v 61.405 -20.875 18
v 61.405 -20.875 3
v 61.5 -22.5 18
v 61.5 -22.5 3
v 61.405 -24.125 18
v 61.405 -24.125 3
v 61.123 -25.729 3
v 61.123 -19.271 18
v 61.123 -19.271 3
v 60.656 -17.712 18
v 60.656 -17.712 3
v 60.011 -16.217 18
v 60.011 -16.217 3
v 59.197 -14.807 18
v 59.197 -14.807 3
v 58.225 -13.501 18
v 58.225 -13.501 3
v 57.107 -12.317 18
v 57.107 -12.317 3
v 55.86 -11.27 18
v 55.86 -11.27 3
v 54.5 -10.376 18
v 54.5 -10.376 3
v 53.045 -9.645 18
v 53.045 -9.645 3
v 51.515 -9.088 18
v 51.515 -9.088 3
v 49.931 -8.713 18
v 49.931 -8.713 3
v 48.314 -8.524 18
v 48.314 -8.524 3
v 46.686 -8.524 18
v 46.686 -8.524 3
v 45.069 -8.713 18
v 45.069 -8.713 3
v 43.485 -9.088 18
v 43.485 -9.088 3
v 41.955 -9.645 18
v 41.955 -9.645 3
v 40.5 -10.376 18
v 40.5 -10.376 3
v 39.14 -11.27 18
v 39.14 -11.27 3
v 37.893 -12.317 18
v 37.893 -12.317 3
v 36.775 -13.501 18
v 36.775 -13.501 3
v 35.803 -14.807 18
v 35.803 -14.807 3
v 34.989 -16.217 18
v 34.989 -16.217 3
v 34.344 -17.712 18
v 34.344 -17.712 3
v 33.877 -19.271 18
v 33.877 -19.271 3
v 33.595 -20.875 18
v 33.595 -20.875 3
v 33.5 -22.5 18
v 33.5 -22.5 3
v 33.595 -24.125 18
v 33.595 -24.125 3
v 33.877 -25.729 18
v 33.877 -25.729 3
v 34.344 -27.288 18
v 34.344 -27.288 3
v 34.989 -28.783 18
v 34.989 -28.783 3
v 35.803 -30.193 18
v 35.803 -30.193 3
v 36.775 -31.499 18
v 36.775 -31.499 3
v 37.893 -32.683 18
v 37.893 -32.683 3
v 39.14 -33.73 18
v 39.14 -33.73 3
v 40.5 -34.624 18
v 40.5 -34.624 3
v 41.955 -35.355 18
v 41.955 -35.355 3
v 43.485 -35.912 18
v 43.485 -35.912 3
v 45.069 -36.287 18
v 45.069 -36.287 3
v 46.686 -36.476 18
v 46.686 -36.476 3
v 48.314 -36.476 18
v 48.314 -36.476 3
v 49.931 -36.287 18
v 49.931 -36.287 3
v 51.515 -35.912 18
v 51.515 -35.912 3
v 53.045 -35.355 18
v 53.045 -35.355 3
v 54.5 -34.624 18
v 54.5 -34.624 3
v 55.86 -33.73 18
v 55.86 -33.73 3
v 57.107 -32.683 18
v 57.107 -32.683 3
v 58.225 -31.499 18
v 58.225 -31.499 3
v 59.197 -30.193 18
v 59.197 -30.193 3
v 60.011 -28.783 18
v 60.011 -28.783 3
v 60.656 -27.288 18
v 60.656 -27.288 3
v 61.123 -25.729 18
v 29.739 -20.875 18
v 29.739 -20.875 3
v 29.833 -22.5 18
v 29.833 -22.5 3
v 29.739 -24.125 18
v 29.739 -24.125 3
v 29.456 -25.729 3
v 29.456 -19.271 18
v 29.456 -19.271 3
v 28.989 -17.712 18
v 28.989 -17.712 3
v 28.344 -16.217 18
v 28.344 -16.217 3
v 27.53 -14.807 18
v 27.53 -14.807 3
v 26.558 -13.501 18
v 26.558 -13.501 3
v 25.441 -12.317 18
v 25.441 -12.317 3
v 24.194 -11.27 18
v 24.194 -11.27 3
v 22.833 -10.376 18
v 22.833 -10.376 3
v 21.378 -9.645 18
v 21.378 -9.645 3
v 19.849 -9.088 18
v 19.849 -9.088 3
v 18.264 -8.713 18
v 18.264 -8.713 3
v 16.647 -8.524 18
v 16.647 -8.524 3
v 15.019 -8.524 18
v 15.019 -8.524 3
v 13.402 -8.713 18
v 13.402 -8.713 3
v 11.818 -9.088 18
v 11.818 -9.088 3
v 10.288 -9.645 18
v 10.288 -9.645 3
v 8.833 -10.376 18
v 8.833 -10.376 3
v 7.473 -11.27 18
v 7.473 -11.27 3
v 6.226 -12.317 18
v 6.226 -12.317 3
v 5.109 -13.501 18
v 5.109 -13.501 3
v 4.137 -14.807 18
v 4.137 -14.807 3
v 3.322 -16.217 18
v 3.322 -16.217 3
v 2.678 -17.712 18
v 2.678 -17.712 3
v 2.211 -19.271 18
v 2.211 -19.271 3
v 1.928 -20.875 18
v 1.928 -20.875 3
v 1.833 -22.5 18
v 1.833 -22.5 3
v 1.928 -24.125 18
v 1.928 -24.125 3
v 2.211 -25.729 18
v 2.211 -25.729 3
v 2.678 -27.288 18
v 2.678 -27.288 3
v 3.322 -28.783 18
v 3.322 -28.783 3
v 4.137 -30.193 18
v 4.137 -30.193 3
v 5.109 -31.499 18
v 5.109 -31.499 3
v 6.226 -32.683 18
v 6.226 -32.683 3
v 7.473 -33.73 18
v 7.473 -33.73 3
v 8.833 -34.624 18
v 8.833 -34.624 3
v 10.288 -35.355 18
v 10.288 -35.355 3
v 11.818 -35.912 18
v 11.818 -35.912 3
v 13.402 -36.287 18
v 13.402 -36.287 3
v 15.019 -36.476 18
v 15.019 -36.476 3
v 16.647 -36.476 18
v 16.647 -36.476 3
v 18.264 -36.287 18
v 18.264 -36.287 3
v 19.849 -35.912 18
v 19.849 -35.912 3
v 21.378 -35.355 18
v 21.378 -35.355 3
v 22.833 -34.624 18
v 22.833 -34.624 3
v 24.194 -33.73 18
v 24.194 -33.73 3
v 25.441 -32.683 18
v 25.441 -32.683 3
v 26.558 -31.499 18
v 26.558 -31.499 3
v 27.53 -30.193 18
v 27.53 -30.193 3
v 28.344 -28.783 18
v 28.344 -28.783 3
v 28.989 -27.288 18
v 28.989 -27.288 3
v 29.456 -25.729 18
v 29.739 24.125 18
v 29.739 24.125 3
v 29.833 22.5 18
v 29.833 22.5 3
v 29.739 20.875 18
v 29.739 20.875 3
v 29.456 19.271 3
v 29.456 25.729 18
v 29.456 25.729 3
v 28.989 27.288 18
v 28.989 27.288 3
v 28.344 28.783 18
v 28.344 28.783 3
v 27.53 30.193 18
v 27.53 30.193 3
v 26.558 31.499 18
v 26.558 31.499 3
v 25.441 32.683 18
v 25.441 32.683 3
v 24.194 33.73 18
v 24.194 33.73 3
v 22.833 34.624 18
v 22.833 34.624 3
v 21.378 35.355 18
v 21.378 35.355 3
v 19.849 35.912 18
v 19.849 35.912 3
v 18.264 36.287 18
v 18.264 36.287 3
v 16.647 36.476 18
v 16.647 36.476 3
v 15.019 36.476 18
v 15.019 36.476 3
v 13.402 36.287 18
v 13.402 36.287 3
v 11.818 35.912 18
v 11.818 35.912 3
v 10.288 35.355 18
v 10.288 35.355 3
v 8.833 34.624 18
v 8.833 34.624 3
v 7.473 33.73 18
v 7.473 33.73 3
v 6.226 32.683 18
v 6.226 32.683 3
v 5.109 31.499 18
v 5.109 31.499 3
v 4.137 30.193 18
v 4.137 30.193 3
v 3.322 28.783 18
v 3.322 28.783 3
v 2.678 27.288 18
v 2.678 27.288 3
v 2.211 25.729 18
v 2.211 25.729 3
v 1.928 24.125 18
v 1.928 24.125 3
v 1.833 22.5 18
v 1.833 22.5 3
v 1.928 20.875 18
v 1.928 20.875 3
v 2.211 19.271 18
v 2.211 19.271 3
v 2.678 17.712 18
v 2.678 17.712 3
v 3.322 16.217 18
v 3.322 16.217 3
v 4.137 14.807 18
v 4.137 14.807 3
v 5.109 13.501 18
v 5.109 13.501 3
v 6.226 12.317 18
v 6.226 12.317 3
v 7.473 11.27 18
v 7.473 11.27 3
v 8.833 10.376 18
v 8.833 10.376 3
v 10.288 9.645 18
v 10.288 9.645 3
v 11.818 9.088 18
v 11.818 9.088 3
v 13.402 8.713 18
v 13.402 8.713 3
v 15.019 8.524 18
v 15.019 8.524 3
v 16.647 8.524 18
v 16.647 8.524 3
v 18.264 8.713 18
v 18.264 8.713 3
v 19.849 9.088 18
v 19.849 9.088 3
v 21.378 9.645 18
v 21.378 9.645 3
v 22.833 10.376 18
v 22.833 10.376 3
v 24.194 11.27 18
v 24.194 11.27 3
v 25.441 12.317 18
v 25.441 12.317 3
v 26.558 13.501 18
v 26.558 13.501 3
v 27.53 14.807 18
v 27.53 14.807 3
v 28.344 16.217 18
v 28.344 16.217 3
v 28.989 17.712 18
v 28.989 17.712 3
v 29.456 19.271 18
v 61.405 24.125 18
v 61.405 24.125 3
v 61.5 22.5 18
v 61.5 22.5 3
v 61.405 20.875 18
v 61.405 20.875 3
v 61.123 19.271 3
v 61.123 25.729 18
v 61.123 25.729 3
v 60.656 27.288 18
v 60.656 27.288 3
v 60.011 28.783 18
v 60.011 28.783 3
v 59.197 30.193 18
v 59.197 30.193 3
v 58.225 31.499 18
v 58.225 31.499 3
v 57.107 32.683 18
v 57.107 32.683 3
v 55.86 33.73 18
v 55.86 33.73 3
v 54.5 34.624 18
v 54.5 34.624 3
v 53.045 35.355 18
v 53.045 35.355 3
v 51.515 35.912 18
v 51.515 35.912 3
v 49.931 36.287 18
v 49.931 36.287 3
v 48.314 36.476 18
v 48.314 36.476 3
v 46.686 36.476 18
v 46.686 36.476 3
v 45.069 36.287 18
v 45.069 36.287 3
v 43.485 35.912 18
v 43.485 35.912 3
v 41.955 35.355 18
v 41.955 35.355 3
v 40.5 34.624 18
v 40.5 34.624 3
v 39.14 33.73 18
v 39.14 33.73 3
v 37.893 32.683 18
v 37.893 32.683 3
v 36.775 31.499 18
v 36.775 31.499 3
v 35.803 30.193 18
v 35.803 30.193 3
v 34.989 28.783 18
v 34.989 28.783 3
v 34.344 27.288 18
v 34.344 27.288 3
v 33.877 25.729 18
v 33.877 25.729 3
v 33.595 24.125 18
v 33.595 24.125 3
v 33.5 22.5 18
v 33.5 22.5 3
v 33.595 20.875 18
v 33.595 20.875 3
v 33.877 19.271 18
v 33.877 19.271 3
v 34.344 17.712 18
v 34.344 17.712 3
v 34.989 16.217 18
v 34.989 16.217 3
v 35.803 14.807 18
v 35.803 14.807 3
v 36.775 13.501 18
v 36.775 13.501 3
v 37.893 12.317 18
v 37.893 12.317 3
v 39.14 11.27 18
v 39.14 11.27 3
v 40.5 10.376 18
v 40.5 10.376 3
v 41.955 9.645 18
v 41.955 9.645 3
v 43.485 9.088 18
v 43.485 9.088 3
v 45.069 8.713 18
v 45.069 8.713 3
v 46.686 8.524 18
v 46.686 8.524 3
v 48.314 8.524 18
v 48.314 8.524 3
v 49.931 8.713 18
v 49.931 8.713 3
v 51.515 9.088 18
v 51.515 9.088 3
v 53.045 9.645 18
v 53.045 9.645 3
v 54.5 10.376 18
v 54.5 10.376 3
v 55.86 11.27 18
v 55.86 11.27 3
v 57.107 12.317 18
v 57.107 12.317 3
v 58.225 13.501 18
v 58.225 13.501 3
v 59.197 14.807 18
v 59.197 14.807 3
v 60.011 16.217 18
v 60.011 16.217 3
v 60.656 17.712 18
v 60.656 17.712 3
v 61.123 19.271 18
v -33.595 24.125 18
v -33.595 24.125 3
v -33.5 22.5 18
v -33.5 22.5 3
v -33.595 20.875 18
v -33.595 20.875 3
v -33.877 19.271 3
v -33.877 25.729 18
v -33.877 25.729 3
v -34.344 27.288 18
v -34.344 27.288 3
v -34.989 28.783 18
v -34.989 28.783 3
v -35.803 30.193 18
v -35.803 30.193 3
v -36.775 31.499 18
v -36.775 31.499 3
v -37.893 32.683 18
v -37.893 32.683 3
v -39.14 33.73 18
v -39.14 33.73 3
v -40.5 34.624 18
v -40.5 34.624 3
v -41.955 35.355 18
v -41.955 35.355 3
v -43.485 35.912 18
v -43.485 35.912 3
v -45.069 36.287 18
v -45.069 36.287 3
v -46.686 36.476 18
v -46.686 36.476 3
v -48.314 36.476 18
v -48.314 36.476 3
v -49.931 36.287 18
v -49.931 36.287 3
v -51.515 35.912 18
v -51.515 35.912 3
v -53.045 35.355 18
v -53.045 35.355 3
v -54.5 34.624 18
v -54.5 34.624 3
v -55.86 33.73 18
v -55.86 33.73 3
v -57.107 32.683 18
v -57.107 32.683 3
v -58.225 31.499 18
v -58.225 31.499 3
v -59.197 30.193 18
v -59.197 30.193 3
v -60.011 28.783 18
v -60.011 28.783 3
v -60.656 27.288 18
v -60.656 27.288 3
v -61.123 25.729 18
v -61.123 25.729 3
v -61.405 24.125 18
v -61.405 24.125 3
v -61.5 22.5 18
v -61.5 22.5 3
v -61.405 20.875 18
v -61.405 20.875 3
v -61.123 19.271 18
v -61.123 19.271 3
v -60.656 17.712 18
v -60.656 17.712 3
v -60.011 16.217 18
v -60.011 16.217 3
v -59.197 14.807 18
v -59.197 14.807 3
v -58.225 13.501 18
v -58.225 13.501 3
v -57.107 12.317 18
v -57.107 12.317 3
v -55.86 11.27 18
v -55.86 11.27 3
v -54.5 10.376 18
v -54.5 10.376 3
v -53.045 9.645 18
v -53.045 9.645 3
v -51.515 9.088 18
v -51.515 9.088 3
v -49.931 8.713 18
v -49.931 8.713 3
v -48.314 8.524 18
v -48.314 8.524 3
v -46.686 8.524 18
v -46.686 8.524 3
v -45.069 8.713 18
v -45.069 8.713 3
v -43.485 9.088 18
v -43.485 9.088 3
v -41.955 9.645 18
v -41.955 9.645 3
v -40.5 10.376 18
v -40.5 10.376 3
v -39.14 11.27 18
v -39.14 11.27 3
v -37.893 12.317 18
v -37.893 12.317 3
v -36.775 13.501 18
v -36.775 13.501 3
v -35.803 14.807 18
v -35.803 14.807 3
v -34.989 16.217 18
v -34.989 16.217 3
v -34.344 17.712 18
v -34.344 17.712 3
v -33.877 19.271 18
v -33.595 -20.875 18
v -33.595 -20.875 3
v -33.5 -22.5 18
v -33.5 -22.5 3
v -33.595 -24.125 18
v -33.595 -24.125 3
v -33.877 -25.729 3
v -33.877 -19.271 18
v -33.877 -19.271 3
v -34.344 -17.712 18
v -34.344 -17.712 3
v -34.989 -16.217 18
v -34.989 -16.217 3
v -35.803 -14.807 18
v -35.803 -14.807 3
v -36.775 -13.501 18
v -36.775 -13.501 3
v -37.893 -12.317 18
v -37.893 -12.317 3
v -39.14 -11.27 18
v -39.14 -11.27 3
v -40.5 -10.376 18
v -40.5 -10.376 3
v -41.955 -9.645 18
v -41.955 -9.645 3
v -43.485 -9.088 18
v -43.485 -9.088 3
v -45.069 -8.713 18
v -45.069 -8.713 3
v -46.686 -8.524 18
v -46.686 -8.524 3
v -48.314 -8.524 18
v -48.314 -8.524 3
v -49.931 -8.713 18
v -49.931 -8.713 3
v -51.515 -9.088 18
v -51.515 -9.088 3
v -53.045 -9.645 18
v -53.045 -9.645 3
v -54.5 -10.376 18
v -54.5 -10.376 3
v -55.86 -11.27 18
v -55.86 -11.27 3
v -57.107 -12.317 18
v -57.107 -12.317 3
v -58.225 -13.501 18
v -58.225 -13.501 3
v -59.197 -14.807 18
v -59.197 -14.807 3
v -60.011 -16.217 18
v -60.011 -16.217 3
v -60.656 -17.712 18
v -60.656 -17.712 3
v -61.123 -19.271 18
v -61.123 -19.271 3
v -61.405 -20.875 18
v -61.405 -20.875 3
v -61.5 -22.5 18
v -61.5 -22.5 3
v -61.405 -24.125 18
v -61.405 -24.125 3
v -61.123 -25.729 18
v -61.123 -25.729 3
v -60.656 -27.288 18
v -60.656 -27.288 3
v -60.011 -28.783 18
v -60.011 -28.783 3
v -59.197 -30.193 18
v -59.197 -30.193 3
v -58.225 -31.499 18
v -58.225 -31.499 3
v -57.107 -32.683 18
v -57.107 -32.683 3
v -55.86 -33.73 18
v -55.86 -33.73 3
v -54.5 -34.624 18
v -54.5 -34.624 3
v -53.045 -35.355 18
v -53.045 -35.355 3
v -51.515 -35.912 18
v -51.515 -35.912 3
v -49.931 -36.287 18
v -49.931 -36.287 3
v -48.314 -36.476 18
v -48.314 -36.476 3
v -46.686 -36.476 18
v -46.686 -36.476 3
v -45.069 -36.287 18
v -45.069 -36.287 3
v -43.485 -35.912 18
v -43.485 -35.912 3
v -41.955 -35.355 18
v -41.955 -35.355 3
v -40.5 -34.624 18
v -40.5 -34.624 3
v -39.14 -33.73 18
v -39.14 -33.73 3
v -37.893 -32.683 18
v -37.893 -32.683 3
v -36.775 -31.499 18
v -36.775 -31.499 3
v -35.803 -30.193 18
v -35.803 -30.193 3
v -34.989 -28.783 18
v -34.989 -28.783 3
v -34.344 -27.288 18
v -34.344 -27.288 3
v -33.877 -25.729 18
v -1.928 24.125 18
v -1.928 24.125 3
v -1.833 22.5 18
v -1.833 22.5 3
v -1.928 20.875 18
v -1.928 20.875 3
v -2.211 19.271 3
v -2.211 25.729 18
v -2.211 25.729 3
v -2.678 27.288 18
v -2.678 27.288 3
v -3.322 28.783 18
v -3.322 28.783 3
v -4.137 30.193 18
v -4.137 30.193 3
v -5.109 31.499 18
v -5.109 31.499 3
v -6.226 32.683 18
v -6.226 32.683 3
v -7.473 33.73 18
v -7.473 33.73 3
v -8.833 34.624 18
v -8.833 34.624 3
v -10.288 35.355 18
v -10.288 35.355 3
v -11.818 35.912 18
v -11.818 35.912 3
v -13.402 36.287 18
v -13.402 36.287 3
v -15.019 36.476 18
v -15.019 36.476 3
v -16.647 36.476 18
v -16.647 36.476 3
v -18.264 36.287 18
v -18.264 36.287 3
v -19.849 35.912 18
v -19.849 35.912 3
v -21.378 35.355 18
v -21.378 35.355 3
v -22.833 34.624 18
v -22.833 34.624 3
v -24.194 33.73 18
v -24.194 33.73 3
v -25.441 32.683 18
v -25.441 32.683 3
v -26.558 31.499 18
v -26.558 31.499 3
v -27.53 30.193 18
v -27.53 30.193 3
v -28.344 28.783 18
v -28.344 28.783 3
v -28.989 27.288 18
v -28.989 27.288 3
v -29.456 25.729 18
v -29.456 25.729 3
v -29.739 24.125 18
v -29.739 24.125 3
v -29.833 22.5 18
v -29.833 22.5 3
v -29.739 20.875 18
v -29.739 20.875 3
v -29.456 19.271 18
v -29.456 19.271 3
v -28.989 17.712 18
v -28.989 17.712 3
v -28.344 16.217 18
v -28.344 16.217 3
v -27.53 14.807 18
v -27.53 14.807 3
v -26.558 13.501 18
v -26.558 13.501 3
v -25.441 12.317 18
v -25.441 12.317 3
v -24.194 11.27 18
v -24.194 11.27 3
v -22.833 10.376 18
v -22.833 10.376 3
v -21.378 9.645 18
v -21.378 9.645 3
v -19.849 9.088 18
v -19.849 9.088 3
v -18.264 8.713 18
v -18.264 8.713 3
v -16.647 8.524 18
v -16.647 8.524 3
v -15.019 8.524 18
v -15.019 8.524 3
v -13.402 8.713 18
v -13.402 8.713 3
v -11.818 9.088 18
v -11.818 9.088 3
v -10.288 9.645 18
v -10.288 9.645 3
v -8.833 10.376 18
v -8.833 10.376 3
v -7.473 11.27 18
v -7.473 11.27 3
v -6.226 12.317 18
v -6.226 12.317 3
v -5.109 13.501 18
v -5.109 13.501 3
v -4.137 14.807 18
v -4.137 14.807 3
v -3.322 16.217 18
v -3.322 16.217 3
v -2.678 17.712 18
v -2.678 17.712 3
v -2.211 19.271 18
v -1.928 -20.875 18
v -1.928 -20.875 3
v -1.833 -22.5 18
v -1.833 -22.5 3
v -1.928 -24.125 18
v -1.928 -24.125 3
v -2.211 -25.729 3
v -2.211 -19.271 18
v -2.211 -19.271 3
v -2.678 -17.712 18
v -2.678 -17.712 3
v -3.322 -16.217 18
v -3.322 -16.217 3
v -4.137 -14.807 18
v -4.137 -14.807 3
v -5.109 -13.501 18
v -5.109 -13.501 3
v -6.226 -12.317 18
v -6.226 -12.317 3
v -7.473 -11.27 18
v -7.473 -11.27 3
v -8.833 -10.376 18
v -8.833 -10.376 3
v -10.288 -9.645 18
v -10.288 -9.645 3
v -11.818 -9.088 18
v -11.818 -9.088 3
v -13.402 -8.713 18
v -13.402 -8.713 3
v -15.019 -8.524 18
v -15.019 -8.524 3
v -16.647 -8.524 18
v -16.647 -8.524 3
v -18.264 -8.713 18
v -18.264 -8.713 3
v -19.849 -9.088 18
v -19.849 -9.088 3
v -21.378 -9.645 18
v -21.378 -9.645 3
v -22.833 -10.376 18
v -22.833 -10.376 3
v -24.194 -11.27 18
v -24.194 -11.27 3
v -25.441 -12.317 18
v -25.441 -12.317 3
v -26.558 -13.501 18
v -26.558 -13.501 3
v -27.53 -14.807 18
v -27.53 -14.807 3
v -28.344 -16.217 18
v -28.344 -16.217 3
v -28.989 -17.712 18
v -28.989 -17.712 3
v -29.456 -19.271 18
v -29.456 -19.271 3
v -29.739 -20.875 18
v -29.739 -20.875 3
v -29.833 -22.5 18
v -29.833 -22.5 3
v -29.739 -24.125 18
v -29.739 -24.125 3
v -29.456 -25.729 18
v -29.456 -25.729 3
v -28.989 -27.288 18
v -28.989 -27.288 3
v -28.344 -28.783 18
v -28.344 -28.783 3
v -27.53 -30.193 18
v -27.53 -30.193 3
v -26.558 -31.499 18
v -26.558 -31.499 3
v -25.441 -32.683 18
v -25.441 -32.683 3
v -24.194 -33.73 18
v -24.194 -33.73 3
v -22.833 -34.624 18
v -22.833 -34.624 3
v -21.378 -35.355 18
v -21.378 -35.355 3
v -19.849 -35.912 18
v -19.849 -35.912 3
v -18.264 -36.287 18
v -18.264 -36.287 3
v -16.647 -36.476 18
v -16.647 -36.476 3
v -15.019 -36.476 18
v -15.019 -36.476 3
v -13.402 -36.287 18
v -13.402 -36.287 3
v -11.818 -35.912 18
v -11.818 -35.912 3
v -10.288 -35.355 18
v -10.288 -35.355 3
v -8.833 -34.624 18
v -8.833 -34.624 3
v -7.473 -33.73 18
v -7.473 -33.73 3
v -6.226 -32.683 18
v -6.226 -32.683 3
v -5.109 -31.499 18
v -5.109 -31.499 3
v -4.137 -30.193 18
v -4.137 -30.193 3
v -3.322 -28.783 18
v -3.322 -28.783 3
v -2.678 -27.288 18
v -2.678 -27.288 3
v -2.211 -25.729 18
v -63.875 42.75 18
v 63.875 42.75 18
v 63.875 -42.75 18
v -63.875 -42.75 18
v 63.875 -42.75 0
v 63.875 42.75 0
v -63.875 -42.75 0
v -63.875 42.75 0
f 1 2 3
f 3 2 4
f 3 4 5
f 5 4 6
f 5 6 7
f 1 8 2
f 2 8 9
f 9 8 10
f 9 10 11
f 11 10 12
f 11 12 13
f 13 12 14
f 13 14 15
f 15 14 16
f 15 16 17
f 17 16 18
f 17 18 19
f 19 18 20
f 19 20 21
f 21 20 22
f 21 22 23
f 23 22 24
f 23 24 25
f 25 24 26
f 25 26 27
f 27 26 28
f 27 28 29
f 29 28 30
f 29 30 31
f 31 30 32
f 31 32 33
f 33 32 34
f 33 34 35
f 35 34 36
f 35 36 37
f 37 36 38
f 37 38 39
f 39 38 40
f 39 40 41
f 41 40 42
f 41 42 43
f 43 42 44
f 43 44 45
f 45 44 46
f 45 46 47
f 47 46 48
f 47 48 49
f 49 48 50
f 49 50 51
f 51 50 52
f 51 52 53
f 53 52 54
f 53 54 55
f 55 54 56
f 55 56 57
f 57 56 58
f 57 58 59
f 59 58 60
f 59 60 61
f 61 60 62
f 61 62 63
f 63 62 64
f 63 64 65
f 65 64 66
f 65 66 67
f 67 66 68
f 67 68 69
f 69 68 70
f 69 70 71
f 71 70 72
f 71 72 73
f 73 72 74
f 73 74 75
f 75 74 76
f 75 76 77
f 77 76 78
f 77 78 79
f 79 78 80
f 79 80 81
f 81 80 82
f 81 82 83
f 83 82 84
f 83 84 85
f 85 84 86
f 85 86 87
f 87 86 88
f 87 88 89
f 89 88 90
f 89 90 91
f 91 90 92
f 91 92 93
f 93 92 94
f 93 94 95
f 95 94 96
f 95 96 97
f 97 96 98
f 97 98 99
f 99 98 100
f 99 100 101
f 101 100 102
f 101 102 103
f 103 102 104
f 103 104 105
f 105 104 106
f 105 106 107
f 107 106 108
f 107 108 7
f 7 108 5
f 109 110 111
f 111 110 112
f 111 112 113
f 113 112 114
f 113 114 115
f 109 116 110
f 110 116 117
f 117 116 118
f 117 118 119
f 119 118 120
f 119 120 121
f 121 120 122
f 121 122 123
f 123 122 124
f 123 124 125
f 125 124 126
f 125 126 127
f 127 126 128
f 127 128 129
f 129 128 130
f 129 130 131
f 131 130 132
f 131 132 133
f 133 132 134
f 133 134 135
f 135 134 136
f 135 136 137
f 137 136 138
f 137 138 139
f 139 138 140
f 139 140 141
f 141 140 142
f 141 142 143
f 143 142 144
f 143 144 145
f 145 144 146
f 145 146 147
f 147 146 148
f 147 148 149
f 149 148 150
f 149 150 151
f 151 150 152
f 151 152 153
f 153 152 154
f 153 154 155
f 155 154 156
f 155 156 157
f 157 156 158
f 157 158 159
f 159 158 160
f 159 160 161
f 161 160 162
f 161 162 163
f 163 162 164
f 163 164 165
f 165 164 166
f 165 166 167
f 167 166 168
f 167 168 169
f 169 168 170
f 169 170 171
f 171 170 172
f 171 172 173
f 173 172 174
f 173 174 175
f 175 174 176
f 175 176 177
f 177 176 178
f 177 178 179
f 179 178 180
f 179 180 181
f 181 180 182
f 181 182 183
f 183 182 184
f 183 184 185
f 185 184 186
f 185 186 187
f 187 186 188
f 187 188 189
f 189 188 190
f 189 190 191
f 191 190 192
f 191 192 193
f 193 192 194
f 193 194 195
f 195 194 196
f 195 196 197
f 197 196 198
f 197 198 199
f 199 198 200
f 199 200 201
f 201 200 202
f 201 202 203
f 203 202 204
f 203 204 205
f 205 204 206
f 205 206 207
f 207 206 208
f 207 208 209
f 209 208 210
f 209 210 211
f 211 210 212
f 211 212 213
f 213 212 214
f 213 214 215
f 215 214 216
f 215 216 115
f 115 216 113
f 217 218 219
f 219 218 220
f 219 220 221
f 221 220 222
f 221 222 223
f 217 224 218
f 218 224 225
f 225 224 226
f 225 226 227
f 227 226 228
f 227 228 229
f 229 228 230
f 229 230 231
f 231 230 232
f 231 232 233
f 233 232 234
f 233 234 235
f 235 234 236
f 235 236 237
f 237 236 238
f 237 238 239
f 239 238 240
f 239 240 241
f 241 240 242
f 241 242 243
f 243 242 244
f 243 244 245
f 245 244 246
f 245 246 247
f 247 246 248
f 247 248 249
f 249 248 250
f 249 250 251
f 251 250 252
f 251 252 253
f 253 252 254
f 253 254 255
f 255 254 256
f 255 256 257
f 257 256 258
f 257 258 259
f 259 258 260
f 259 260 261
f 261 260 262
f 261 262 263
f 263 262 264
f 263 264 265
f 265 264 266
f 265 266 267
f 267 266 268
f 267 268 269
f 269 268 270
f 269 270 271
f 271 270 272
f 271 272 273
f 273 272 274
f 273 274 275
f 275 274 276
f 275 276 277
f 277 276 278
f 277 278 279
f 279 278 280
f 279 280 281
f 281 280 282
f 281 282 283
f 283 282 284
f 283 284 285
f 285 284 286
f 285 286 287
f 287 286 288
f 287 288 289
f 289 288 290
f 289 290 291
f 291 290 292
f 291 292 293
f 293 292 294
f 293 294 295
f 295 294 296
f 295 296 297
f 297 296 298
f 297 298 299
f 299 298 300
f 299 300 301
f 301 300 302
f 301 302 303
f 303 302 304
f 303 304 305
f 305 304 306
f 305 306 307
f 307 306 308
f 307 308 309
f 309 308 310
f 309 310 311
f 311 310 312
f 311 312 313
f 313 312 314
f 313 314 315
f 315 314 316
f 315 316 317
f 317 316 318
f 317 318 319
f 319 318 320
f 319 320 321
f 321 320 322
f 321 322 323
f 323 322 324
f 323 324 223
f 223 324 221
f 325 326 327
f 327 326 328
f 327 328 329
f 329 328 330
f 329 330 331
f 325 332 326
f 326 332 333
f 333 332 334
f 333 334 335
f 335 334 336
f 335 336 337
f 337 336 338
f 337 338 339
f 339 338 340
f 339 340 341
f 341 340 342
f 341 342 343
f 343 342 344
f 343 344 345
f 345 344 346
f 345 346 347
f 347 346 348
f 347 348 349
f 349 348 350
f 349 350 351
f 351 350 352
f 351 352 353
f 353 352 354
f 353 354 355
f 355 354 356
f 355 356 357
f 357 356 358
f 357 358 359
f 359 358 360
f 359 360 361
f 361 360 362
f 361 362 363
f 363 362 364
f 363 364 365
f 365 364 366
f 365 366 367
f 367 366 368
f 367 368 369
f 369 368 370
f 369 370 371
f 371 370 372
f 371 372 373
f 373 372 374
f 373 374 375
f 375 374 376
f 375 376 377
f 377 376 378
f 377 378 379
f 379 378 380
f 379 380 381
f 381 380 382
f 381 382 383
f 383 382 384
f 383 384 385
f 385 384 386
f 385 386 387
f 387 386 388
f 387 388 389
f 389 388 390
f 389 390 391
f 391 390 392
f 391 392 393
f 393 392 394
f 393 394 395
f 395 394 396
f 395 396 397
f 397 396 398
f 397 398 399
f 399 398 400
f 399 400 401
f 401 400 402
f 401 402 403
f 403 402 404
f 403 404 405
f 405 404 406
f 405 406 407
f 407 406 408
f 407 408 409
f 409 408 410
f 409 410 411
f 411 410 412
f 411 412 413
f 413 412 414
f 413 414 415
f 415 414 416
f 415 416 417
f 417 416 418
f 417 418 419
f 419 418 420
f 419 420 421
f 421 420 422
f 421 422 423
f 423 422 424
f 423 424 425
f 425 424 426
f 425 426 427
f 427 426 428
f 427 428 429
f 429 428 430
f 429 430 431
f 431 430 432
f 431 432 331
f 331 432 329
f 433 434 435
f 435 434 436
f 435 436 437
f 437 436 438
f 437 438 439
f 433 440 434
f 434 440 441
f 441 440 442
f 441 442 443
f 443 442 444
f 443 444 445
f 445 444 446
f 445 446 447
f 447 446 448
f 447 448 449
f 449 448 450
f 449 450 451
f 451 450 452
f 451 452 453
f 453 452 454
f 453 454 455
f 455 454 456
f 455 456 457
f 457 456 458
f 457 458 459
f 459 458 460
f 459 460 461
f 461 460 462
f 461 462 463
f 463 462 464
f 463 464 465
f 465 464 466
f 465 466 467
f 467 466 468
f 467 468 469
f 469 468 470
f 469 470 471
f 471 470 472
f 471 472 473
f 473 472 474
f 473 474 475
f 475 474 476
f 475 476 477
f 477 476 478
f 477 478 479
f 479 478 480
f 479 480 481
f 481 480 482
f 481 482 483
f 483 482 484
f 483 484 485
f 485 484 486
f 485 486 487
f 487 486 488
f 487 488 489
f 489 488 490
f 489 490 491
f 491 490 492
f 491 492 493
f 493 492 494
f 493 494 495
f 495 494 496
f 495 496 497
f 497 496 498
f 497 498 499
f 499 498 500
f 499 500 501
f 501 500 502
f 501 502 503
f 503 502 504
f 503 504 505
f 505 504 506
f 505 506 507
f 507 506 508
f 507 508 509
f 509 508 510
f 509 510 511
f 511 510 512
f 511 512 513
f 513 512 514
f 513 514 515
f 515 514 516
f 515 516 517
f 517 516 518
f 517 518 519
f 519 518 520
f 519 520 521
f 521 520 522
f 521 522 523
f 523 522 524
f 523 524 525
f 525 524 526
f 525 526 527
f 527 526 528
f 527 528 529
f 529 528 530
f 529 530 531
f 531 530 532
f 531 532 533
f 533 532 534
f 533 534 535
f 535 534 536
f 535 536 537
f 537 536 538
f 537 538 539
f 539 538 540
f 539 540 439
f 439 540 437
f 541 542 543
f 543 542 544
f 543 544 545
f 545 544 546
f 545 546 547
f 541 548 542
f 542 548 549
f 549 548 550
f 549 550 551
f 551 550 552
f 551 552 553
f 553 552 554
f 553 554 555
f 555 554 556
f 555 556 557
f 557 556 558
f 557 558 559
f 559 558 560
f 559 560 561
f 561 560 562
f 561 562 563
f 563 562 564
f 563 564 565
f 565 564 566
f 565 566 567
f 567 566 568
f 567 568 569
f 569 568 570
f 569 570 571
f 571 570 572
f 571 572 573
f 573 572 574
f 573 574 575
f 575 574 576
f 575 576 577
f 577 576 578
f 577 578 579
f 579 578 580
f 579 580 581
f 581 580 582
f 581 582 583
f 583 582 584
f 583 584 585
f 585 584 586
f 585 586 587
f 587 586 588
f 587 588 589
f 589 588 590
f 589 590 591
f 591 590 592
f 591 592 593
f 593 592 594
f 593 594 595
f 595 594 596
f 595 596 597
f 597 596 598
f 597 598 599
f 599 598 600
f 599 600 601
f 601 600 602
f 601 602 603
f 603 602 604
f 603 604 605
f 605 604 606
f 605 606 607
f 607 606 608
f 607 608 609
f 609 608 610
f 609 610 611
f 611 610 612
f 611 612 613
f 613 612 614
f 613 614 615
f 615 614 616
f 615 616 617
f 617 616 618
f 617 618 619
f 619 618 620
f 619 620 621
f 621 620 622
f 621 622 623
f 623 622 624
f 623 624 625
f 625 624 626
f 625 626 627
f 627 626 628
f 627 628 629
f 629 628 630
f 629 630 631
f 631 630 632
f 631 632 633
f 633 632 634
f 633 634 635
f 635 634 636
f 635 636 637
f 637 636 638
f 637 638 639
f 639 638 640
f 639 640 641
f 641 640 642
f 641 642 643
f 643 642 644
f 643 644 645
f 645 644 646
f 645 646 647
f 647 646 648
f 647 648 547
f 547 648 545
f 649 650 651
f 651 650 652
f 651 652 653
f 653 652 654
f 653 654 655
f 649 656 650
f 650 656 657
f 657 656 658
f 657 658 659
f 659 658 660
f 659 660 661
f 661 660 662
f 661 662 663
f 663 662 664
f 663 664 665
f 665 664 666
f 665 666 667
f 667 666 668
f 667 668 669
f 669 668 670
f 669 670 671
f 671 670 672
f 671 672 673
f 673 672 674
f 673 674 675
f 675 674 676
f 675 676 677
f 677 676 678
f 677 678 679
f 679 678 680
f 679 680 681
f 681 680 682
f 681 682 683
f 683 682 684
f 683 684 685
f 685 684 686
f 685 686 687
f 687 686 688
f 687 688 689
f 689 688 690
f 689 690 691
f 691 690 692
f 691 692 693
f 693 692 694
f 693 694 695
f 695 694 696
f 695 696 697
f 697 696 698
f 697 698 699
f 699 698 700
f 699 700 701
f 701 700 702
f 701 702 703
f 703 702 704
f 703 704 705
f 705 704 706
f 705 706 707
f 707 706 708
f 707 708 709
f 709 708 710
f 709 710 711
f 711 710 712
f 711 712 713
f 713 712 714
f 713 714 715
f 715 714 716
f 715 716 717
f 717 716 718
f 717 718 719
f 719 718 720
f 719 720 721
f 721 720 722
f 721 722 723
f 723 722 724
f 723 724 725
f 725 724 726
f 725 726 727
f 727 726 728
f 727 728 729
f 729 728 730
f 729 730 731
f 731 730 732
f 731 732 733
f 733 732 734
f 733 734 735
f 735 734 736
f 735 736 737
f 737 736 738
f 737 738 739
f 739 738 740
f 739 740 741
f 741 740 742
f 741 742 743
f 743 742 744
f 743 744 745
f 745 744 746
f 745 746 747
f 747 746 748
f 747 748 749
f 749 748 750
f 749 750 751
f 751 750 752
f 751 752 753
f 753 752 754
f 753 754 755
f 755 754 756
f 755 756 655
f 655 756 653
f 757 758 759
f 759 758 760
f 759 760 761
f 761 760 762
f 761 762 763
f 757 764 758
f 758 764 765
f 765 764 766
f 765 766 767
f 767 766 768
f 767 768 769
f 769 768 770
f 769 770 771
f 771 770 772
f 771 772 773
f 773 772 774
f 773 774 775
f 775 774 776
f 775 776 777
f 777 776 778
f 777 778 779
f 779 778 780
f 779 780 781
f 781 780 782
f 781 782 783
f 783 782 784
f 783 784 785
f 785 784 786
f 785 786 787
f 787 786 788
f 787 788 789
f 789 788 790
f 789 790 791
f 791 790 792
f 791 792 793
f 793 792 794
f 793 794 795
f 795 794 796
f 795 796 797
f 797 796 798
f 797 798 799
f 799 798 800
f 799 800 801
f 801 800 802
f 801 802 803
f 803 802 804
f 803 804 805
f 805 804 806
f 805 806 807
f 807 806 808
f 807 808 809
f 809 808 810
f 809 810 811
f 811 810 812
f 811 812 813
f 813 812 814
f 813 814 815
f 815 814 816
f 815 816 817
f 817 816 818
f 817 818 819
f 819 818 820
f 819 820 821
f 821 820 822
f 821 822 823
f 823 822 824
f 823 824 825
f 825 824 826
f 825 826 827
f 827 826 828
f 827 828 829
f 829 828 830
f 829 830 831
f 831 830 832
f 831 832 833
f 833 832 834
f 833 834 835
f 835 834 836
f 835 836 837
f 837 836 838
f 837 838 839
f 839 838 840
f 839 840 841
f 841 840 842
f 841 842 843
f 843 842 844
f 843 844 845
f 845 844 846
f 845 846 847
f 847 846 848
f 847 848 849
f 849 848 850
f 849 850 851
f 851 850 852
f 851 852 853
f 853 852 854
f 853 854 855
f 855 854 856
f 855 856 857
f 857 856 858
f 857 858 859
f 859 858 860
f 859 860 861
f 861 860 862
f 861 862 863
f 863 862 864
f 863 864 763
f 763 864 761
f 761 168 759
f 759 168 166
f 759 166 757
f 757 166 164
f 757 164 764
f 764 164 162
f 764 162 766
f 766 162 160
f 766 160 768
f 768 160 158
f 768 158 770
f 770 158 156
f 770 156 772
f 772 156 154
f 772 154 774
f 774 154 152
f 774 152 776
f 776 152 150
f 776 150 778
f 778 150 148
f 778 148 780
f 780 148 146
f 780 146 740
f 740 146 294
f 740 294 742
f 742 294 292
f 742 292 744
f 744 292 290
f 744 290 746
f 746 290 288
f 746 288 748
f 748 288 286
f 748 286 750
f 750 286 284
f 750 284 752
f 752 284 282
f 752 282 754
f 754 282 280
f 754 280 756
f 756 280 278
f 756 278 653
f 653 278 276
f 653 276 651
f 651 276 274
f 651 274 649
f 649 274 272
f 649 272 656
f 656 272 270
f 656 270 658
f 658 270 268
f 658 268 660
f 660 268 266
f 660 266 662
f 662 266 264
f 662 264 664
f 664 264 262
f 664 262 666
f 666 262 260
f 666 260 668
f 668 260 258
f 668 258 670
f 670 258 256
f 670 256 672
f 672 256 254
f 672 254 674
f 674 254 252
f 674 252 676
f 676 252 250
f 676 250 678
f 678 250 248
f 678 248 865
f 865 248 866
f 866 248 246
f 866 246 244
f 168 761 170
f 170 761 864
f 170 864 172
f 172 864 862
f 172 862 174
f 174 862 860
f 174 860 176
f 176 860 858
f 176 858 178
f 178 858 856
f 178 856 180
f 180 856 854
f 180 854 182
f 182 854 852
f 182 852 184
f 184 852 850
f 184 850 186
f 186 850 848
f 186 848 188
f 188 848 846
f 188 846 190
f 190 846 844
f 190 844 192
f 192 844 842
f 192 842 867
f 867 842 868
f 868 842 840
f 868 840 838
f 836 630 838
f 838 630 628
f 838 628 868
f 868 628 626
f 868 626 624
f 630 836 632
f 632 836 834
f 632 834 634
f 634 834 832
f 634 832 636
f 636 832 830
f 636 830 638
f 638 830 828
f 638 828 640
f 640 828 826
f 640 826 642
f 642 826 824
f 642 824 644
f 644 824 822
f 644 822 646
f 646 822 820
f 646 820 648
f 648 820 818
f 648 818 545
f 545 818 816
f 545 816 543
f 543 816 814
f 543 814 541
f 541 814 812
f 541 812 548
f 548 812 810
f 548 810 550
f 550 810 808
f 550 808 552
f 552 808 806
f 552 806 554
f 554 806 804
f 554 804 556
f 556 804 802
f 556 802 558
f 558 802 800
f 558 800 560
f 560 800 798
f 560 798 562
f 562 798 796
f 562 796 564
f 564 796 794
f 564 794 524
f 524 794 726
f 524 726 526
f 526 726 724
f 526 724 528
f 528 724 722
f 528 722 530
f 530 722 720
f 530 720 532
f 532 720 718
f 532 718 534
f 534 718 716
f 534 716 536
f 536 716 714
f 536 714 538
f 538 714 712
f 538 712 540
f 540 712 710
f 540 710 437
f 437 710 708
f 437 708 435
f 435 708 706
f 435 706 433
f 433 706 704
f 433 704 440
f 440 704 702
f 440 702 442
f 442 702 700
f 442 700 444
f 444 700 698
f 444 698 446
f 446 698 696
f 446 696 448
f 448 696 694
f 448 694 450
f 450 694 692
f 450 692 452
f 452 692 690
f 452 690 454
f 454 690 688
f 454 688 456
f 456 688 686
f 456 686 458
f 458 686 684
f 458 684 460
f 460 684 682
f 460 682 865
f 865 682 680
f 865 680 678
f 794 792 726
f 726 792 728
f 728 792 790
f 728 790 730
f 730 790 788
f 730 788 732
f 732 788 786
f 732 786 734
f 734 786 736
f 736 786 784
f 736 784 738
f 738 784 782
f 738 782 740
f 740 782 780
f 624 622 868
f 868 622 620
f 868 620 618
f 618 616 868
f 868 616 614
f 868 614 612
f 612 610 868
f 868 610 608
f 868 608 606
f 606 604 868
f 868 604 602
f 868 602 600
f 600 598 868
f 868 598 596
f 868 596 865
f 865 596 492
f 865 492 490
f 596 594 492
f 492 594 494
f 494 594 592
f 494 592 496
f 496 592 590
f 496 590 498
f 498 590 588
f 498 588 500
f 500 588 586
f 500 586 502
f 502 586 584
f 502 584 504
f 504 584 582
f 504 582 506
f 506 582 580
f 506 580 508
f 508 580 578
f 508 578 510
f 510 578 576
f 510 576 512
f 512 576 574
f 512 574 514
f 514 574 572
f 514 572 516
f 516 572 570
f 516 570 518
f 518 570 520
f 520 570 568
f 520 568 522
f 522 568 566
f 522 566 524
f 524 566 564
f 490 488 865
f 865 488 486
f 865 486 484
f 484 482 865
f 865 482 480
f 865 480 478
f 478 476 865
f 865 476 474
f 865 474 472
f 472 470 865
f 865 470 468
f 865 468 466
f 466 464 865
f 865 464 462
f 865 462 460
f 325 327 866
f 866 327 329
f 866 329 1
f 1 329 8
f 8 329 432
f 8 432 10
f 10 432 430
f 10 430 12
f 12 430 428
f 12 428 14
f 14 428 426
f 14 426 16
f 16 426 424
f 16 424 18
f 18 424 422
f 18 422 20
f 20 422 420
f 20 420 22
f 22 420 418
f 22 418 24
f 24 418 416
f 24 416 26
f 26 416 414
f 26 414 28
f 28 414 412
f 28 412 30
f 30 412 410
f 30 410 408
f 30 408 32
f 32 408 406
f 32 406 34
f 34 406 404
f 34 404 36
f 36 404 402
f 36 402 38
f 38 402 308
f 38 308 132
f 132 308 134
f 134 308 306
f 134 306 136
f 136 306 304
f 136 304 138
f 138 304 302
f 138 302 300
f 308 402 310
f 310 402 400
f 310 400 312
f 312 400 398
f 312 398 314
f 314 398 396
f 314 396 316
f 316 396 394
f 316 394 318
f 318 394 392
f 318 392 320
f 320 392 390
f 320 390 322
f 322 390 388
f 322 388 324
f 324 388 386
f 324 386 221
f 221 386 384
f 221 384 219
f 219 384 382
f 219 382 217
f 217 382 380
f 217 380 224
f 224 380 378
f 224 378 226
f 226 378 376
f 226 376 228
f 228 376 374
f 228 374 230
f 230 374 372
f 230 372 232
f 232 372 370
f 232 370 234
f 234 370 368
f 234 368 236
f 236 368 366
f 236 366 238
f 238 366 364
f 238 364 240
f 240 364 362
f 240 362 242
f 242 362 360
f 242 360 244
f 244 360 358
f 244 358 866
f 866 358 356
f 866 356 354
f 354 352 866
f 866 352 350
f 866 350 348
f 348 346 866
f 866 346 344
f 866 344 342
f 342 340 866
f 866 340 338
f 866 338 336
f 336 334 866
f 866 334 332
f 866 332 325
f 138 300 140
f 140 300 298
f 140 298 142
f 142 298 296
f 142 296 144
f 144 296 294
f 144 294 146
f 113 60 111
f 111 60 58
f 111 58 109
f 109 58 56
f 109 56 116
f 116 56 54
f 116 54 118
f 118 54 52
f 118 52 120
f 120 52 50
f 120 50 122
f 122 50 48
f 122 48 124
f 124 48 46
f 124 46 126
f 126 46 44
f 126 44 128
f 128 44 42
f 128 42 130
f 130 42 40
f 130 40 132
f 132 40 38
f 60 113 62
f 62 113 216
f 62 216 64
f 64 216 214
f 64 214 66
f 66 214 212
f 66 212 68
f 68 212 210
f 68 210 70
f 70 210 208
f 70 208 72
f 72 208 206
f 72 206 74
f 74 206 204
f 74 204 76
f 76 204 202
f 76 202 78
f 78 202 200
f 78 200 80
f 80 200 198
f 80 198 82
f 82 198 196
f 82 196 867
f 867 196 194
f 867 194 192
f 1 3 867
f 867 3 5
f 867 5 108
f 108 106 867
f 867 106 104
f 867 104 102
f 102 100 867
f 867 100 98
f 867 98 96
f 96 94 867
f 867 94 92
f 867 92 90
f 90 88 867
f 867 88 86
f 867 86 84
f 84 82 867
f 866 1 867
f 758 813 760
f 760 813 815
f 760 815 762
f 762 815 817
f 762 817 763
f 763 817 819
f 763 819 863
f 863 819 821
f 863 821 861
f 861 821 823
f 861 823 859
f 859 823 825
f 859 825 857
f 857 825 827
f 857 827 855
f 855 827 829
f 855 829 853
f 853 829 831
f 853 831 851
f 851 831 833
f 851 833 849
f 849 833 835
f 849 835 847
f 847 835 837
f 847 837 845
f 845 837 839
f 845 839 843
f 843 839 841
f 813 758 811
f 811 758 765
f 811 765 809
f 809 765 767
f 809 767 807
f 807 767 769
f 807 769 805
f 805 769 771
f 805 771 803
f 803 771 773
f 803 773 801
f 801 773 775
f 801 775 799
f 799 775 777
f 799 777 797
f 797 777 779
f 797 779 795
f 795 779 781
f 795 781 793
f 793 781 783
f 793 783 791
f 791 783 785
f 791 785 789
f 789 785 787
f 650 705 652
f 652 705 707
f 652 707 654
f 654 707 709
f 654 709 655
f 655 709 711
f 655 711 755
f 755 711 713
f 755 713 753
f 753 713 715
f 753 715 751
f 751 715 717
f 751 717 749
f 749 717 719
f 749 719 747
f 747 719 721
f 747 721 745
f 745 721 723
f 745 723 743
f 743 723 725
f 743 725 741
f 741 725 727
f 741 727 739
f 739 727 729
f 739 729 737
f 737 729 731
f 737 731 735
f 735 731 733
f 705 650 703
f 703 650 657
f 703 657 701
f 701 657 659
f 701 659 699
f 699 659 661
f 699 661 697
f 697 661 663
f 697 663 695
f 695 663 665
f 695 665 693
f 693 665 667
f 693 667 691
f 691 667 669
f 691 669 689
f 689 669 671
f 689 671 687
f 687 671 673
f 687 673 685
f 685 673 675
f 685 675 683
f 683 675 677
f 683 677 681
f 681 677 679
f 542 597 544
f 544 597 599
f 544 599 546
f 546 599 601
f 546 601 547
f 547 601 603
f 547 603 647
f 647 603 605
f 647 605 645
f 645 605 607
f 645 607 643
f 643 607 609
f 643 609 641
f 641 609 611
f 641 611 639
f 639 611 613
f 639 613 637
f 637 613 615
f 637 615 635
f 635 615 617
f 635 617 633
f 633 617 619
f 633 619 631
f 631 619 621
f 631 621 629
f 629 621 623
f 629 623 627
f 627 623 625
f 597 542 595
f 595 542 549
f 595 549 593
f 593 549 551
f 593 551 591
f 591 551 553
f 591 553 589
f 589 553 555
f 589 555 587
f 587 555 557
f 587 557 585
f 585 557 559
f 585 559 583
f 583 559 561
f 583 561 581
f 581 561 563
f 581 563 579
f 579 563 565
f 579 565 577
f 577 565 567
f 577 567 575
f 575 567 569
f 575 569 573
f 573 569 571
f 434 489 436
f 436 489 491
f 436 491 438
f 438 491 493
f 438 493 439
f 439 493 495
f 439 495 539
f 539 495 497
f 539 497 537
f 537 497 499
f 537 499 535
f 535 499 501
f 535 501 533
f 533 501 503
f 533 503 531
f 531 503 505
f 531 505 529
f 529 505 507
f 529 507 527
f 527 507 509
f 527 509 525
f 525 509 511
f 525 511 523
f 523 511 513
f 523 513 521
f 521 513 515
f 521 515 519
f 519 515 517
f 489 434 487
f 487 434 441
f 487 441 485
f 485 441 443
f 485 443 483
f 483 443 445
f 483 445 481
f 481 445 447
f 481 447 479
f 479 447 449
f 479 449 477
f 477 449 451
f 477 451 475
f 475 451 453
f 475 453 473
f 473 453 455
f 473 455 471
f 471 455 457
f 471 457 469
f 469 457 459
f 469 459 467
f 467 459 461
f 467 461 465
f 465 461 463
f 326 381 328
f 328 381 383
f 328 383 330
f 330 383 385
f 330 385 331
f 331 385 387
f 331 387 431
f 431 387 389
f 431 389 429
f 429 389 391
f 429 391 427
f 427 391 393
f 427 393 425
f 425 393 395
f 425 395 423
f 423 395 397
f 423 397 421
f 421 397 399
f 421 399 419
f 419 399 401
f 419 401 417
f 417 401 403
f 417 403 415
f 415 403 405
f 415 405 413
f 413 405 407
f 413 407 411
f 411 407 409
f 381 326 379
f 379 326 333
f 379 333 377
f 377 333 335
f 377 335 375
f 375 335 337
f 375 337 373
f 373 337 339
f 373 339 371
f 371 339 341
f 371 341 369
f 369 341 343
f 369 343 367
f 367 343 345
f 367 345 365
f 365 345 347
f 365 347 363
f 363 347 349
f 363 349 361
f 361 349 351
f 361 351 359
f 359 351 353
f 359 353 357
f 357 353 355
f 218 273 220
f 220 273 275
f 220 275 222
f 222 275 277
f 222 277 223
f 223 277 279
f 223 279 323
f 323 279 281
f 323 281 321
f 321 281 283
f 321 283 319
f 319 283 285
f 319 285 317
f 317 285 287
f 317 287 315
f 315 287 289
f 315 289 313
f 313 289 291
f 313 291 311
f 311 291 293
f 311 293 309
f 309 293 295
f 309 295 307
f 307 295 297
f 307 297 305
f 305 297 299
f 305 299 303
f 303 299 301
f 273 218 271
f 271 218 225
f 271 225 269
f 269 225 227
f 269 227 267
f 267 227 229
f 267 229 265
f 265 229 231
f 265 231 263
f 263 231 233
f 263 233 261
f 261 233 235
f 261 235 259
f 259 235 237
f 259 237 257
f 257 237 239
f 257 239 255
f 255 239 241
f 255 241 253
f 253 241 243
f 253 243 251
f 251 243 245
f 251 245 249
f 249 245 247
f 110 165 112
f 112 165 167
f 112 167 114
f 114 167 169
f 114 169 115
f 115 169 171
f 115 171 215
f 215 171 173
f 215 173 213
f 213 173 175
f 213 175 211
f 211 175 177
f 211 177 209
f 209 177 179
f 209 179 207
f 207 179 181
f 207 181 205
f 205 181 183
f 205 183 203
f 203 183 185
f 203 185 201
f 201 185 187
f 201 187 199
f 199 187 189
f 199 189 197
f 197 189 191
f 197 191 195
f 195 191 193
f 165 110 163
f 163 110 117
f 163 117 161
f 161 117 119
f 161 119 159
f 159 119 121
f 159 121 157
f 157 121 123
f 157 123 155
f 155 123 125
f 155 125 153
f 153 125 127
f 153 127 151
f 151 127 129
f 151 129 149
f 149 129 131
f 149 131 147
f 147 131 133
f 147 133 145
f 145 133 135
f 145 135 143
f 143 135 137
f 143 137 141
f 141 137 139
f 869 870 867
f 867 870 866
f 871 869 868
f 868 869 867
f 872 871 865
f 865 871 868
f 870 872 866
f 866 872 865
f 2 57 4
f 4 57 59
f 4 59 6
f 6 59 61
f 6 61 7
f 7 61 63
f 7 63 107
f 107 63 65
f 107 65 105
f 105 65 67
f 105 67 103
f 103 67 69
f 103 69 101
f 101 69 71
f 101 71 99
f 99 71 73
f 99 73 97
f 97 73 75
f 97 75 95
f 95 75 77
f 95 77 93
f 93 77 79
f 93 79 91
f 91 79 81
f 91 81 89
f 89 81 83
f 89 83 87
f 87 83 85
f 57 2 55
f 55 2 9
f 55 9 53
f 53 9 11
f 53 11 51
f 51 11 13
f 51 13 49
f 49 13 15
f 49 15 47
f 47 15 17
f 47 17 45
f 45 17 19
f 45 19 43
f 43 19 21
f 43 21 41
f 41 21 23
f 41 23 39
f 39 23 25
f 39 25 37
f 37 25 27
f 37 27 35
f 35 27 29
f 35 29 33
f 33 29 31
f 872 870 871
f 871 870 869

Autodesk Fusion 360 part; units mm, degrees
sketch "Sketch1" plane through (0, 0, 0) normal (0, 0, 1) x (1, 0, 0)
  line L0 (63.875, -42.75) -> (-63.875, -42.75)
  line L1 (-63.875, -42.75) -> (-63.875, 42.75)
  line L2 (-63.875, 42.75) -> (63.875, 42.75)
  line L3 (63.875, 42.75) -> (63.875, -42.75)
  line L4 (63.875, -42.75) -> (-63.875, 42.75) construction
  line L5 (-63.875, -42.75) -> (63.875, 42.75) construction
  dimension "d1" = 127.75
  dimension "d2" = 85.5
extrude "Extrude1" add sketch "Sketch1" along normal blind 3
sketch "Sketch2" plane through (0, 0, 3) normal (0, 0, 1) x (-1, 0, 0)
  line L0 (-63.875, -42.75) -> (63.875, -42.75)
  line L1 (63.875, -42.75) -> (63.875, 42.75)
  line L2 (63.875, 42.75) -> (-63.875, 42.75)
  line L3 (-63.875, 42.75) -> (-63.875, -42.75)
  line L4 (-63.875, -42.75) -> (-63.875, 42.75)
  line L5 (-63.875, 42.75) -> (63.875, 42.75)
  line L6 (63.875, 42.75) -> (63.875, -42.75)
  line L7 (63.875, -42.75) -> (-63.875, -42.75)
  line L8 (0, 0) -> (47.5, 0) construction
  line L9 (47.5, 0) -> (47.5, -22.5) construction
  circle A0 centre (47.5, -22.5) radius 13.5
  circle A1 centre (47.5, -22.5) radius 14
  circle A2 centre (15.8333, -22.5) radius 14
  circle A3 centre (-15.8333, -22.5) radius 14
  circle A4 centre (-47.5, -22.5) radius 14
  circle A5 centre (47.5, 22.5) radius 14
  circle A6 centre (15.8333, 22.5) radius 14
  circle A7 centre (-15.8333, 22.5) radius 14
  circle A8 centre (-47.5, 22.5) radius 14
  dimension "d5" = 47.5
  dimension "d6" = 22.5
  dimension "d7" = 27
  dimension "d8" = 0.5
  dimension "d15" = -95
  dimension "d16" = 45
extrude "Extrude2" add sketch "Sketch2" along normal blind 15 contours L0 L1 L2 L3 L4 L5 L6 L7
